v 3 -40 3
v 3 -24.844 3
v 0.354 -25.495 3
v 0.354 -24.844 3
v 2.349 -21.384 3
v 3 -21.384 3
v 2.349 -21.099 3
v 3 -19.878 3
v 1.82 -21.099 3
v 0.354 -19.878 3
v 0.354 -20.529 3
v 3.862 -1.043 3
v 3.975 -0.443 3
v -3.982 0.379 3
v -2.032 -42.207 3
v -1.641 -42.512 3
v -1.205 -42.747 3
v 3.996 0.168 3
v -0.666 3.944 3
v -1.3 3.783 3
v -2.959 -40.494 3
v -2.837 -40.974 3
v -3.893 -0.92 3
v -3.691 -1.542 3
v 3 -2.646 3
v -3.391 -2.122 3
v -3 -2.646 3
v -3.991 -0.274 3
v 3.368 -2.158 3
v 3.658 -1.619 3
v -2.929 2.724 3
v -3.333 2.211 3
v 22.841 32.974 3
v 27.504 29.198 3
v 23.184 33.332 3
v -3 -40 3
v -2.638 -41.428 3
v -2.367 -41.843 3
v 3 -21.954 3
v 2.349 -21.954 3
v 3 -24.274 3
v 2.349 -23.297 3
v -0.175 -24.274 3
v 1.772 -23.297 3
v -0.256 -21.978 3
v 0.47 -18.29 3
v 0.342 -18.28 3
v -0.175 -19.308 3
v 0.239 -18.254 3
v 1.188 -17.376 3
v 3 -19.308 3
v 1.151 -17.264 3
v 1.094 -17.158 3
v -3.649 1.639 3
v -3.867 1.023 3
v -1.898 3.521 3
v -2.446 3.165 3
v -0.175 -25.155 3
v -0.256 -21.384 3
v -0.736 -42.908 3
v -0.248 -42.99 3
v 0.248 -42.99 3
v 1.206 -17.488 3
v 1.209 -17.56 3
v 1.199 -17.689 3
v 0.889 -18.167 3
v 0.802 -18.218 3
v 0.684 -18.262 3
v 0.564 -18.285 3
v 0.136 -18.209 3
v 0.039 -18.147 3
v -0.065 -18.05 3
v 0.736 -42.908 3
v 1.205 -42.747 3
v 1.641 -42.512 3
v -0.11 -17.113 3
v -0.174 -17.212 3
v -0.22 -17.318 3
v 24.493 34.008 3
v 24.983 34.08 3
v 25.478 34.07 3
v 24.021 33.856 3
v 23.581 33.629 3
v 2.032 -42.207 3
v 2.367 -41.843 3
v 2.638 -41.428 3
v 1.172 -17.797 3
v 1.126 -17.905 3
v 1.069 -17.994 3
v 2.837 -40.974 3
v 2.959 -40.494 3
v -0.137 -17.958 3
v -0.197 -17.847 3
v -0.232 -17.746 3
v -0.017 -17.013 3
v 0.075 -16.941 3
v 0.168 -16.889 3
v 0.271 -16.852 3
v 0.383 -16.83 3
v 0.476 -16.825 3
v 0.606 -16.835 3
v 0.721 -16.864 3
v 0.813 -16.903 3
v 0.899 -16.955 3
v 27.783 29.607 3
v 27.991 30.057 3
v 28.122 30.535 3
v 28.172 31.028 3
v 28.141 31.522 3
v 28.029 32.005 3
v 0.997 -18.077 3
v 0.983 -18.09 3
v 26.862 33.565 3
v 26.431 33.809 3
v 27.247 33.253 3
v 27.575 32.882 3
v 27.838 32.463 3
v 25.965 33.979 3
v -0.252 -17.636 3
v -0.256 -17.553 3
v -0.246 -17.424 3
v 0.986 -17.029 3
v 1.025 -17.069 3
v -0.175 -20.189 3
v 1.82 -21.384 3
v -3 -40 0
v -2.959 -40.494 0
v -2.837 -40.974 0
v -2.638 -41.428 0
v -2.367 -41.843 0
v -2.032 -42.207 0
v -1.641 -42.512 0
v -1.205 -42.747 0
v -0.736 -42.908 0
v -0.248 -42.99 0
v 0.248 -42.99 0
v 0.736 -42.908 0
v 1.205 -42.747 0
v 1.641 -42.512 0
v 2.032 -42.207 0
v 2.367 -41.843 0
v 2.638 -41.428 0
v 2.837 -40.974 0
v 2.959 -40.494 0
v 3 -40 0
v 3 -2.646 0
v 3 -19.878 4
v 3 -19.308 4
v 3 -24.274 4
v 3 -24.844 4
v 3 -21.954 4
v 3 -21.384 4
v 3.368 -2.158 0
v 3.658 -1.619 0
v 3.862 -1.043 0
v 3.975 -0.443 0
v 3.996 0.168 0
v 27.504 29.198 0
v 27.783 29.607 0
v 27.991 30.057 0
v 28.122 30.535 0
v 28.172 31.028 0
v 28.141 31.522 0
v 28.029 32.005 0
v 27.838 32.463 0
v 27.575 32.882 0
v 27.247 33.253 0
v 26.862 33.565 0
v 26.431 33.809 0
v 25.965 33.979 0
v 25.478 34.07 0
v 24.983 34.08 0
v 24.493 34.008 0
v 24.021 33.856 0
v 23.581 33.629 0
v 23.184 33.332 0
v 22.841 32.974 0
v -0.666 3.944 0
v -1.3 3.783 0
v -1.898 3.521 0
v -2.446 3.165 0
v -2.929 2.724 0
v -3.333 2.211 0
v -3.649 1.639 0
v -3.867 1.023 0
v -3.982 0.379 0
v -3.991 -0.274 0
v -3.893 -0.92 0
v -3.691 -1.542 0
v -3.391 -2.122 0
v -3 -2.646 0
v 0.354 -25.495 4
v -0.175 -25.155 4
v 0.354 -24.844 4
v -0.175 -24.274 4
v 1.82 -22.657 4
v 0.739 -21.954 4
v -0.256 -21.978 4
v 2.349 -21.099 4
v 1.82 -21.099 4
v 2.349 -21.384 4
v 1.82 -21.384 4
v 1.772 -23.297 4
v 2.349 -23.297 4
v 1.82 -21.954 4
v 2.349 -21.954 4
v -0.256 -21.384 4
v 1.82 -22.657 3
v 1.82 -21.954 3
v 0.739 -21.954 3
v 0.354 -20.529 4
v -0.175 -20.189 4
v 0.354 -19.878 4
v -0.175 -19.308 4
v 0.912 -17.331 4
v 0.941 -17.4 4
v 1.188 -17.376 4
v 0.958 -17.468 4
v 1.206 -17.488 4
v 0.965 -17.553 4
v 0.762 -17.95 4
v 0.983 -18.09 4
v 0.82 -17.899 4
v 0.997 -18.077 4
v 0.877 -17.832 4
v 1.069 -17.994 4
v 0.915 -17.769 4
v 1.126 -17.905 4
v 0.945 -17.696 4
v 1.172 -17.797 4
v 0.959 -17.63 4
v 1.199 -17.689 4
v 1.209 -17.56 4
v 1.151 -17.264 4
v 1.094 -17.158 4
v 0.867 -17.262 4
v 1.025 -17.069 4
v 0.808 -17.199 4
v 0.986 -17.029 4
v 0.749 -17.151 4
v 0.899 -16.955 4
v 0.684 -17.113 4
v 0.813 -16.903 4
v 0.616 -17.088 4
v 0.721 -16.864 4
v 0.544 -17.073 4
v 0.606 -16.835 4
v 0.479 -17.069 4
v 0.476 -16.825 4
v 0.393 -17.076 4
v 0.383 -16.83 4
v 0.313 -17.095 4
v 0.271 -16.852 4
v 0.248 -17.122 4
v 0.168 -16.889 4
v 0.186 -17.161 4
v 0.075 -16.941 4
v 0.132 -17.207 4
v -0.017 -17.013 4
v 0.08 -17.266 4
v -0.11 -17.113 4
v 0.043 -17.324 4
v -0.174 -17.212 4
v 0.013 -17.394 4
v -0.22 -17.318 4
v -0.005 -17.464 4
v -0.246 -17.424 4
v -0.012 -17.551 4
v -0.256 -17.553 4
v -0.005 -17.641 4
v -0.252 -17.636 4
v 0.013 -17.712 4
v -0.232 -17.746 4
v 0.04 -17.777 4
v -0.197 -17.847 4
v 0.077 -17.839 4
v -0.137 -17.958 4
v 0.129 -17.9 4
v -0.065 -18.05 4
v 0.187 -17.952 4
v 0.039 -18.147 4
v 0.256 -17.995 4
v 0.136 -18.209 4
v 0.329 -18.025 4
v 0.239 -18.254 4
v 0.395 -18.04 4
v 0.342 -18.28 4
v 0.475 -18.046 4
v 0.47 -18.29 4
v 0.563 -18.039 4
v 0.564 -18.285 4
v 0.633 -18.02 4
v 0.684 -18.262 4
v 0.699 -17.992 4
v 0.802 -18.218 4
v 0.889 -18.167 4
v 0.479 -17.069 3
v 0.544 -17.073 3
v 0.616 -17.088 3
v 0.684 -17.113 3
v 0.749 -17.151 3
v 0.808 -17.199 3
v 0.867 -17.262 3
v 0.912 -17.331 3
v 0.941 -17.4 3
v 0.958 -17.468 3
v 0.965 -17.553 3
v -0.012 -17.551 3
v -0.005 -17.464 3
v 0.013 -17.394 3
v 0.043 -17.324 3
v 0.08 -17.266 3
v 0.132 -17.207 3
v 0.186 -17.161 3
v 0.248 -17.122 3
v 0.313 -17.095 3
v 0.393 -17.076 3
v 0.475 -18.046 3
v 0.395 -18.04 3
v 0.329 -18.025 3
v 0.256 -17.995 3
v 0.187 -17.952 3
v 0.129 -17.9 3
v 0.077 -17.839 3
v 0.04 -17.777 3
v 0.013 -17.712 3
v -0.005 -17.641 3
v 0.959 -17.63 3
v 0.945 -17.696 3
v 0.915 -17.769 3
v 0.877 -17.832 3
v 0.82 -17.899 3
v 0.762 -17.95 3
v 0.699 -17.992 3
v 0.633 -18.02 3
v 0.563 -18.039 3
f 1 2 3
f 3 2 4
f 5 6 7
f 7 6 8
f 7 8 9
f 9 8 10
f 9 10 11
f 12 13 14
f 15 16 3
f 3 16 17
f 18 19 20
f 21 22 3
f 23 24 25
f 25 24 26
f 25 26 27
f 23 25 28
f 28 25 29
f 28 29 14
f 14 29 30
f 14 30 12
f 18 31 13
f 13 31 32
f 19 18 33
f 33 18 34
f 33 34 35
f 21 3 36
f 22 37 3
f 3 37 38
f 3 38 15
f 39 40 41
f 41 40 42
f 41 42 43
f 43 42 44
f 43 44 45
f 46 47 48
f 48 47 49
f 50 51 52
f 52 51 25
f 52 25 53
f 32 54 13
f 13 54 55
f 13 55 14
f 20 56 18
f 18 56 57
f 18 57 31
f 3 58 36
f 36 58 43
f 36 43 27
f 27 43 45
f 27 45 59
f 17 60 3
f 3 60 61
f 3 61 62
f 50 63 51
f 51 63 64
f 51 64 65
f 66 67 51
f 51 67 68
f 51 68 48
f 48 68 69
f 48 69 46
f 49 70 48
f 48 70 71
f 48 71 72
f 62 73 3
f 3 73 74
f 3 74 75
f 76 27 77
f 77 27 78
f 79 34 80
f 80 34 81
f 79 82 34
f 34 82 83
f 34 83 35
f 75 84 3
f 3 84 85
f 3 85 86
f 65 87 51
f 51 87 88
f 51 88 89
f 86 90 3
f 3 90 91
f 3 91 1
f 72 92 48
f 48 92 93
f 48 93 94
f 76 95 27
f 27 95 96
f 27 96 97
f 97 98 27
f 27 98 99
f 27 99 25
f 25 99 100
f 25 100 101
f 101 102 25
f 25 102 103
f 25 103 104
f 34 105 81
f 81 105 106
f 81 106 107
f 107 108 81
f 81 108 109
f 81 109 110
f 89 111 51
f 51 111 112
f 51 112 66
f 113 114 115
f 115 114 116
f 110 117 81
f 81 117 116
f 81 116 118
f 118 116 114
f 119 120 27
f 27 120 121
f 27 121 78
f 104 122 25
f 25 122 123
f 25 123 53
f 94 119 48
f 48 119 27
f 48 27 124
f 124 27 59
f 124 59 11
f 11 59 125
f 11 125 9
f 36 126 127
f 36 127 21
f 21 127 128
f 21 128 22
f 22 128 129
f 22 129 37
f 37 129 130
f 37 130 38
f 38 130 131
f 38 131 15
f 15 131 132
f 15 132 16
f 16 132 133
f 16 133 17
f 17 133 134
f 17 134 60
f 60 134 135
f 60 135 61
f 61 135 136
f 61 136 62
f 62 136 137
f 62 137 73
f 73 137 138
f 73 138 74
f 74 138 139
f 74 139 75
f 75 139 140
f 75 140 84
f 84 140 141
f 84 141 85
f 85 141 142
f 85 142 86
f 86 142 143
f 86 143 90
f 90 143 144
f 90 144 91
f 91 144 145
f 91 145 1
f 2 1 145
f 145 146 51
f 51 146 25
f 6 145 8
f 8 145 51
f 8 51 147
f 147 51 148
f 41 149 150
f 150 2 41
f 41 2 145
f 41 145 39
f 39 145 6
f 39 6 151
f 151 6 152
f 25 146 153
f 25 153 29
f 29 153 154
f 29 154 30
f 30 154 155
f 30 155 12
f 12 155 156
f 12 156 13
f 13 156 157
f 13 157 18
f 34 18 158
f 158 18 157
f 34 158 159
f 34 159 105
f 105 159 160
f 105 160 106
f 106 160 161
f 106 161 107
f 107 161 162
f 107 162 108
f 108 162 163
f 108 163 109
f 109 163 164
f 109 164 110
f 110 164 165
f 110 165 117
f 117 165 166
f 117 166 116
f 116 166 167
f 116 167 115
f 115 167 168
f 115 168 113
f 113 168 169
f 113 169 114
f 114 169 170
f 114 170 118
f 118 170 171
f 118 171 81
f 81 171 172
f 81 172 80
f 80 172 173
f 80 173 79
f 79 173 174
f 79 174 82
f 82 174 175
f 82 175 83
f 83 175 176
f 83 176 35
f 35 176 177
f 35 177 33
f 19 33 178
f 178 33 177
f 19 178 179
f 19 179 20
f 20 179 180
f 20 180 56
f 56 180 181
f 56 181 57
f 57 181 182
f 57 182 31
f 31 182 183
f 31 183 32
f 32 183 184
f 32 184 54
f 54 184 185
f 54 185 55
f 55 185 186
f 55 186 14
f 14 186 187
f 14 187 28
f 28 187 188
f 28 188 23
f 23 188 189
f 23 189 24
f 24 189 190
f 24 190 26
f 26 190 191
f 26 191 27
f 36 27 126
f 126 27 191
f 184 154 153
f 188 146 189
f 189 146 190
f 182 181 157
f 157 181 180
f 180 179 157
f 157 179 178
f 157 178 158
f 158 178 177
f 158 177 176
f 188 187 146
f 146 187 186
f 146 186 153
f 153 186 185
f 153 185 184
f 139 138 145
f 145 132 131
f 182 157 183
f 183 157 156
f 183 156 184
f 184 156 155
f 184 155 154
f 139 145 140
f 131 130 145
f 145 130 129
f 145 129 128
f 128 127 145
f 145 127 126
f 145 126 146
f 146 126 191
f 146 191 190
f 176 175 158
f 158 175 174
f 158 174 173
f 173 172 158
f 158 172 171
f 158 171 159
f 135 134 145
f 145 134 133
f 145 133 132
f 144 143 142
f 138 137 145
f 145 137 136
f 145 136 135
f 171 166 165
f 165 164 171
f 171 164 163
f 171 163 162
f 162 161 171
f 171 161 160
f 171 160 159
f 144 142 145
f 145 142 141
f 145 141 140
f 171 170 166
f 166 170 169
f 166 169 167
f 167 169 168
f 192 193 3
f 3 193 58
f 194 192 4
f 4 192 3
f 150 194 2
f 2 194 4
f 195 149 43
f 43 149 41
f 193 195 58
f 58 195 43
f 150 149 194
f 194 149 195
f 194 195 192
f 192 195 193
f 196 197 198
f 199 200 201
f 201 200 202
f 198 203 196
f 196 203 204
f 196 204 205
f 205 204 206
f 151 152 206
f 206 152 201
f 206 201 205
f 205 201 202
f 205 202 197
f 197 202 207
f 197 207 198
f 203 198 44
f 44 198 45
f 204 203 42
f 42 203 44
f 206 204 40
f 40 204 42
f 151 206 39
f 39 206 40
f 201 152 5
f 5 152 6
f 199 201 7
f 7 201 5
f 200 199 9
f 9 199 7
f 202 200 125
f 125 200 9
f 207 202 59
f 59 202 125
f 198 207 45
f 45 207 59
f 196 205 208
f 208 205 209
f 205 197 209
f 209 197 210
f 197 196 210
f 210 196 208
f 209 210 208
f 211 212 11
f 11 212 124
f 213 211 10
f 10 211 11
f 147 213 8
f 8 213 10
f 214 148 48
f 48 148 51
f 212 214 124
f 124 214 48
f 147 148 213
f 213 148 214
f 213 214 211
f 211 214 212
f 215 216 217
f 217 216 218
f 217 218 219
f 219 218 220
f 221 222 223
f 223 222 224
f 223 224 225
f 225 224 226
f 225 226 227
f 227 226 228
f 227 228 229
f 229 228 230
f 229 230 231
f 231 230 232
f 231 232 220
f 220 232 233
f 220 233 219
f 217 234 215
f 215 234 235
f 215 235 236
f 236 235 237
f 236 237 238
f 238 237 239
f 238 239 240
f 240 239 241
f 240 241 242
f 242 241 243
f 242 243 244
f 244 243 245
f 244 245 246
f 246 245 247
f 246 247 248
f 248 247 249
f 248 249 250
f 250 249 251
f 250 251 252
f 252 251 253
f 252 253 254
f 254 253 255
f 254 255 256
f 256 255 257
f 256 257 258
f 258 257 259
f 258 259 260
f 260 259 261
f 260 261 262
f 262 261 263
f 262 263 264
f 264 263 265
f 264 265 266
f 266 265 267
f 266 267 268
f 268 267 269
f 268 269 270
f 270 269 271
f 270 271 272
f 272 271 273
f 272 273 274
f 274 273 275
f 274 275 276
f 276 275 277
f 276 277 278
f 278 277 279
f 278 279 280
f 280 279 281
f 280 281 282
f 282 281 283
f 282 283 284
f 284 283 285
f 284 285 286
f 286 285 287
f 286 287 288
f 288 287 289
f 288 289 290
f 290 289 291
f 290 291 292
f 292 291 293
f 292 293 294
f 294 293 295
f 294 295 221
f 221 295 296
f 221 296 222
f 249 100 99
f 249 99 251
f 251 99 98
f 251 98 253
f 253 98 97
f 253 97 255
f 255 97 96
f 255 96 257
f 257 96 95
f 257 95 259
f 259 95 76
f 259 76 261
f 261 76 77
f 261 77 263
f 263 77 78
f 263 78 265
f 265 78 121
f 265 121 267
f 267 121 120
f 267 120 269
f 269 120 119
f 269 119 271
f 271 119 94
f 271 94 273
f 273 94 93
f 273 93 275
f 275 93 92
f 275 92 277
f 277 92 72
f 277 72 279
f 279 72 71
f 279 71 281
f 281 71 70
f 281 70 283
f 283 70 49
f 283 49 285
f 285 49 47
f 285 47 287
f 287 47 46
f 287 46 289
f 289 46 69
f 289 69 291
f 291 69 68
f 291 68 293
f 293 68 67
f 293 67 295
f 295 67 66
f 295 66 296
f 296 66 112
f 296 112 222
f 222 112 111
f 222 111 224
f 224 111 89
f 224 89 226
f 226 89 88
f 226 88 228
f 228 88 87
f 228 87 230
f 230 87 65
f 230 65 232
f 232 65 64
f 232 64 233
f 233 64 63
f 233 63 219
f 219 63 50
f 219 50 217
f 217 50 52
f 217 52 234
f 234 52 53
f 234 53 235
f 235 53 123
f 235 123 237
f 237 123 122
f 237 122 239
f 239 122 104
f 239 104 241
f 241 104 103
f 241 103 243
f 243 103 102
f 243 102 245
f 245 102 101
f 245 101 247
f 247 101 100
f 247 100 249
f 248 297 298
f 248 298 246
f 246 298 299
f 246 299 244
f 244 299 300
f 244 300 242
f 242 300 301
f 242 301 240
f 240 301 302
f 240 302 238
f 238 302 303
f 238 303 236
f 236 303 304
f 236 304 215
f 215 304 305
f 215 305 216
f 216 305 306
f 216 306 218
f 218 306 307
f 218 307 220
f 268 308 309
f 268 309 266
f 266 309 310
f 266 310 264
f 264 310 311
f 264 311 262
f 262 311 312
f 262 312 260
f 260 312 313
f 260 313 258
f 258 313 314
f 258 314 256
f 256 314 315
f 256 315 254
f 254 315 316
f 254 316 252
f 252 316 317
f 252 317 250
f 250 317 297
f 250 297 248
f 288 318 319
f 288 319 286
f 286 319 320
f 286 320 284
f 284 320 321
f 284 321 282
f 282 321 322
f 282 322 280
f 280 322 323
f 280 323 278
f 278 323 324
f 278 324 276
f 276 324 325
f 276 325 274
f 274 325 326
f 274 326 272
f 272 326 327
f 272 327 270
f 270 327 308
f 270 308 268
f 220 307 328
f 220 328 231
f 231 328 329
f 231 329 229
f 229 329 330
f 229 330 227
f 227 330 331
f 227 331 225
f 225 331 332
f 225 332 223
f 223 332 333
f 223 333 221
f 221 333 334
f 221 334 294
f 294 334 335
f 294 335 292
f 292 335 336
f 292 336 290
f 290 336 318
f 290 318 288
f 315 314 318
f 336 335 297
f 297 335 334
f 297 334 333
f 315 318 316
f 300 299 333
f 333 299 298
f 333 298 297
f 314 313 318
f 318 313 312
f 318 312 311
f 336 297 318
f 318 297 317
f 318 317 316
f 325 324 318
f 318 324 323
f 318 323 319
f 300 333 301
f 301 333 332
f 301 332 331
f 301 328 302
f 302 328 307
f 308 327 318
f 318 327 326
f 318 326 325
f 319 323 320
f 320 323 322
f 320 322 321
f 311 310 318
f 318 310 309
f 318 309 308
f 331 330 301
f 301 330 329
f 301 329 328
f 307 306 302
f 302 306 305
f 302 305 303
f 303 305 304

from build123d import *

# Parameters (mm, degrees)
BOSS_EXTRUDE1_DEPTH = 3
BOSS_EXTRUDE2_DEPTH = 1


with BuildPart() as part:
    # Sketch2 → Boss-Extrude1 (new body)
    with BuildSketch(Plane.XY):
        with BuildLine():
            Line((-3, -40), (-3, -2.645751311))
            ThreePointArc((-3, -2.645751311), (-3.770565964, 1.335227437), (-0.666412635, 3.94409612))
            Line((-0.666412635, 3.94409612), (22.841377758, 32.973799631))
            ThreePointArc((22.841377758, 32.973799631), (27.060776815, 33.417276343), (27.504253526, 29.197877285))
            Line((27.504253526, 29.197877285), (3.996463134, 0.168173773))
            ThreePointArc((3.996463134, 0.168173773), (3.770565964, -1.335227437), (3, -2.645751311))
            Line((3, -2.645751311), (3, -40))
            ThreePointArc((3, -40), (0, -43), (-3, -40))
        make_face()
    extrude(amount=BOSS_EXTRUDE1_DEPTH)

    # Sketch3 → Boss-Extrude2 (add)
    # profile 1 of 4: a face of its own
    with BuildSketch(Plane.XY.offset(3)):
        Polygon((-0.175, -25.154881865), (-0.175, -24.27399745), (3, -24.27399745), (3, -24.843869245), (0.354166667, -24.843869245), (0.354166667, -25.495151297), align=None)
    # profile 2 of 4: a face of its own
    with BuildSketch(Plane.XY.offset(3)):
        Polygon((-0.256410256, -21.977973813), (-0.256410256, -21.383933348), (1.819551282, -21.383933348), (1.819551282, -21.09899745), (2.348717949, -21.09899745), (2.348717949, -21.383933348), (3, -21.383933348), (3, -21.953805143), (2.348717949, -21.953805143), (2.348717949, -23.297074373), (1.77184996, -23.297074373), align=None)
        Polygon((1.819551282, -21.953805143), (0.738957332, -21.953805143), (1.819551282, -22.656604622), align=None, mode=Mode.SUBTRACT)
    # profile 3 of 4: a face of its own
    with BuildSketch(Plane.XY.offset(3)):
        Polygon((-0.175, -20.188856224), (-0.175, -19.307971809), (3, -19.307971809), (3, -19.877843604), (0.354166667, -19.877843604), (0.354166667, -20.529125656), align=None)
    # profile 4 of 4: a face of its own
    with BuildSketch(Plane.XY.offset(3)):
        with BuildLine():
            add(Edge.make_bspline(
                [(0.476282051, -16.824958989), (0.501543872, -16.825505484), (0.55122174, -16.826580176), (0.624352745, -16.837013476), (0.694208258, -16.854492691), (0.761803607, -16.876903338), (0.825395964, -16.908042089), (0.886396731, -16.944903837), (0.943669883, -16.989402672), (0.9978957, -17.039014969), (1.047295391, -17.093515132), (1.090947065, -17.151405488), (1.127096601, -17.212864468), (1.157366856, -17.276577248), (1.180332148, -17.343408663), (1.196689885, -17.412864586), (1.20741609, -17.485236986), (1.208449037, -17.534503871), (1.208974359, -17.559559349)],
                knots=[0, 0, 0, 0, 1.048753193, 2.062393874, 3.059725798, 4.03711221, 5.013824111, 5.993903926, 6.992478922, 8.020738441, 9.043061753, 10.043343452, 11.026424807, 11.999358773, 12.968420071, 13.955122655, 14.960044262, 16, 16, 16, 16], degree=3))
            add(Edge.make_bspline(
                [(1.208974359, -17.559559349), (1.208454225, -17.584616682), (1.207431478, -17.633887214), (1.196631189, -17.706233128), (1.180530583, -17.775855144), (1.156529218, -17.842391691), (1.126678292, -17.90615653), (1.090260147, -17.967072817), (1.046482503, -18.024600993), (0.996781055, -18.078582797), (0.942375086, -18.128107638), (0.88420218, -18.171482912), (0.823225465, -18.208946116), (0.758107997, -18.237837437), (0.69067286, -18.261947038), (0.619758864, -18.27798784), (0.545943315, -18.288833106), (0.495615647, -18.289833085), (0.469921875, -18.290343604)],
                knots=[0, 0, 0, 0, 1.037227242, 2.039512271, 3.023626077, 3.993053151, 4.963434463, 5.936395473, 6.927031705, 7.952593414, 8.972234493, 9.969891786, 10.954906455, 11.929570282, 12.915563215, 13.916770353, 14.936449251, 16, 16, 16, 16], degree=3))
            add(Edge.make_bspline(
                [(0.469921875, -18.290343604), (0.445290866, -18.289811451), (0.396869022, -18.288765297), (0.325492116, -18.278103661), (0.256787066, -18.261182775), (0.190979117, -18.23681523), (0.128167681, -18.205730248), (0.067236284, -18.169180135), (0.010175979, -18.123937412), (-0.044275745, -18.073515722), (-0.093962638, -18.018218509), (-0.137555056, -17.95952238), (-0.173973759, -17.89802202), (-0.203993097, -17.834134423), (-0.227847104, -17.767768562), (-0.244158222, -17.698411219), (-0.254789074, -17.626671533), (-0.255866772, -17.577830012), (-0.256410256, -17.553199173)],
                knots=[0, 0, 0, 0, 1.027628768, 2.020204677, 3.0054932, 3.977172113, 4.942988595, 5.928118098, 6.937247537, 7.976812879, 9.023474825, 10.036014018, 11.024160528, 12.002107364, 12.979092523, 13.962271943, 14.972371232, 16, 16, 16, 16], degree=3))
            add(Edge.make_bspline(
                [(-0.256410256, -17.553199173), (-0.255881051, -17.528566172), (-0.254836181, -17.479930408), (-0.244068832, -17.408427146), (-0.227959354, -17.339440503), (-0.203981879, -17.27352423), (-0.173948227, -17.210285117), (-0.137706982, -17.149501332), (-0.093944483, -17.091941849), (-0.043999627, -17.038019265), (0.009956511, -16.987787182), (0.068273488, -16.944627592), (0.128824771, -16.907104674), (0.192846684, -16.877455064), (0.259342082, -16.853394895), (0.329176204, -16.837233977), (0.401748506, -16.826543556), (0.451226198, -16.825491671), (0.476282051, -16.824958989)],
                knots=[0, 0, 0, 0, 1.02774298, 2.029191086, 3.012479778, 3.981238486, 4.951290381, 5.931946007, 6.930416638, 7.964088953, 8.997761269, 10.003308488, 10.98854748, 11.966603007, 12.943696749, 13.935593372, 14.954569896, 16, 16, 16, 16], degree=3))
        make_face()
        with BuildLine():
            add(Edge.make_bspline(
                [(0.479462139, -17.069189758), (0.462471258, -17.069424264), (0.428972226, -17.069886612), (0.379883793, -17.077505977), (0.332524379, -17.088023775), (0.287283463, -17.10328392), (0.24427911, -17.123234284), (0.203398935, -17.147571829), (0.164484674, -17.176174899), (0.128492582, -17.209237523), (0.095853701, -17.245103846), (0.066652511, -17.282897251), (0.042455186, -17.323086522), (0.023016589, -17.365273093), (0.006315159, -17.408801858), (-0.003707976, -17.454711924), (-0.01154919, -17.502263298), (-0.011966436, -17.534718897), (-0.012179487, -17.55129112)],
                knots=[0, 0, 0, 0, 1.061159961, 2.092171217, 3.098605391, 4.092036902, 5.070589041, 6.057187883, 7.061962211, 8.084674938, 9.107387665, 10.090954379, 11.06617917, 12.032717429, 12.99305519, 13.973669989, 14.965331307, 16, 16, 16, 16], degree=3))
            add(Edge.make_bspline(
                [(-0.012179487, -17.55129112), (-0.01157068, -17.568051412), (-0.01036426, -17.601263796), (-0.004409395, -17.650200831), (0.007572839, -17.69685371), (0.022606002, -17.742054962), (0.043122897, -17.784898142), (0.067542797, -17.826391236), (0.096744971, -17.865435361), (0.129769422, -17.902214665), (0.165718261, -17.935960463), (0.204573602, -17.964950546), (0.244977971, -17.990352408), (0.287582445, -18.010455361), (0.331832846, -18.026567734), (0.377821945, -18.038209426), (0.425871214, -18.044356322), (0.458458137, -18.045521173), (0.475010016, -18.046112835)],
                knots=[0, 0, 0, 0, 1.042034071, 2.064906527, 3.055369705, 4.030203466, 5.020228521, 6.000742353, 7.017744738, 8.043920206, 9.069249762, 10.075703201, 11.051782302, 12.029903876, 12.99669358, 13.974371501, 14.971122288, 16, 16, 16, 16], degree=3))
            add(Edge.make_bspline(
                [(0.475010016, -18.046112835), (0.491349767, -18.045520146), (0.523514051, -18.044353455), (0.570936909, -18.038223162), (0.616468237, -18.026465839), (0.660506807, -18.010425399), (0.703332854, -17.990458383), (0.743356347, -17.964229259), (0.782721478, -17.935019181), (0.819574977, -17.900938323), (0.853594861, -17.864058718), (0.883277913, -17.824563201), (0.908722399, -17.783622403), (0.929101491, -17.740636346), (0.945194342, -17.696373754), (0.956841315, -17.650387952), (0.962986781, -17.60233779), (0.964151827, -17.56975099), (0.96474359, -17.553199173)],
                knots=[0, 0, 0, 0, 1.017878107, 2.003660885, 2.970612419, 3.939454555, 4.919652619, 5.904816436, 6.913406512, 7.969270601, 9.02513469, 10.033724766, 11.041277553, 12.021475617, 12.990317753, 13.970071221, 14.968938047, 16, 16, 16, 16], degree=3))
            add(Edge.make_bspline(
                [(0.96474359, -17.553199173), (0.964515736, -17.536840687), (0.964066668, -17.504600367), (0.956359019, -17.457448889), (0.946146284, -17.411789288), (0.929505189, -17.368485652), (0.910263551, -17.326033898), (0.884925795, -17.286252494), (0.856415485, -17.247396305), (0.822504018, -17.212069657), (0.787116244, -17.177952839), (0.747777121, -17.149765554), (0.707718654, -17.124520148), (0.665616684, -17.10387006), (0.621397497, -17.089062601), (0.575848465, -17.07693948), (0.528165265, -17.071009446), (0.49579822, -17.069800121), (0.479462139, -17.069189758)],
                knots=[0, 0, 0, 0, 1.029744634, 2.029484694, 3.00508751, 3.97324883, 4.947661161, 5.937798898, 6.940036528, 7.980134083, 9.020231638, 10.033191535, 11.023329272, 12.003497406, 12.979740652, 13.958541426, 14.969648588, 16, 16, 16, 16], degree=3))
        make_face(mode=Mode.SUBTRACT)
    extrude(amount=BOSS_EXTRUDE2_DEPTH)


solid = part.part
